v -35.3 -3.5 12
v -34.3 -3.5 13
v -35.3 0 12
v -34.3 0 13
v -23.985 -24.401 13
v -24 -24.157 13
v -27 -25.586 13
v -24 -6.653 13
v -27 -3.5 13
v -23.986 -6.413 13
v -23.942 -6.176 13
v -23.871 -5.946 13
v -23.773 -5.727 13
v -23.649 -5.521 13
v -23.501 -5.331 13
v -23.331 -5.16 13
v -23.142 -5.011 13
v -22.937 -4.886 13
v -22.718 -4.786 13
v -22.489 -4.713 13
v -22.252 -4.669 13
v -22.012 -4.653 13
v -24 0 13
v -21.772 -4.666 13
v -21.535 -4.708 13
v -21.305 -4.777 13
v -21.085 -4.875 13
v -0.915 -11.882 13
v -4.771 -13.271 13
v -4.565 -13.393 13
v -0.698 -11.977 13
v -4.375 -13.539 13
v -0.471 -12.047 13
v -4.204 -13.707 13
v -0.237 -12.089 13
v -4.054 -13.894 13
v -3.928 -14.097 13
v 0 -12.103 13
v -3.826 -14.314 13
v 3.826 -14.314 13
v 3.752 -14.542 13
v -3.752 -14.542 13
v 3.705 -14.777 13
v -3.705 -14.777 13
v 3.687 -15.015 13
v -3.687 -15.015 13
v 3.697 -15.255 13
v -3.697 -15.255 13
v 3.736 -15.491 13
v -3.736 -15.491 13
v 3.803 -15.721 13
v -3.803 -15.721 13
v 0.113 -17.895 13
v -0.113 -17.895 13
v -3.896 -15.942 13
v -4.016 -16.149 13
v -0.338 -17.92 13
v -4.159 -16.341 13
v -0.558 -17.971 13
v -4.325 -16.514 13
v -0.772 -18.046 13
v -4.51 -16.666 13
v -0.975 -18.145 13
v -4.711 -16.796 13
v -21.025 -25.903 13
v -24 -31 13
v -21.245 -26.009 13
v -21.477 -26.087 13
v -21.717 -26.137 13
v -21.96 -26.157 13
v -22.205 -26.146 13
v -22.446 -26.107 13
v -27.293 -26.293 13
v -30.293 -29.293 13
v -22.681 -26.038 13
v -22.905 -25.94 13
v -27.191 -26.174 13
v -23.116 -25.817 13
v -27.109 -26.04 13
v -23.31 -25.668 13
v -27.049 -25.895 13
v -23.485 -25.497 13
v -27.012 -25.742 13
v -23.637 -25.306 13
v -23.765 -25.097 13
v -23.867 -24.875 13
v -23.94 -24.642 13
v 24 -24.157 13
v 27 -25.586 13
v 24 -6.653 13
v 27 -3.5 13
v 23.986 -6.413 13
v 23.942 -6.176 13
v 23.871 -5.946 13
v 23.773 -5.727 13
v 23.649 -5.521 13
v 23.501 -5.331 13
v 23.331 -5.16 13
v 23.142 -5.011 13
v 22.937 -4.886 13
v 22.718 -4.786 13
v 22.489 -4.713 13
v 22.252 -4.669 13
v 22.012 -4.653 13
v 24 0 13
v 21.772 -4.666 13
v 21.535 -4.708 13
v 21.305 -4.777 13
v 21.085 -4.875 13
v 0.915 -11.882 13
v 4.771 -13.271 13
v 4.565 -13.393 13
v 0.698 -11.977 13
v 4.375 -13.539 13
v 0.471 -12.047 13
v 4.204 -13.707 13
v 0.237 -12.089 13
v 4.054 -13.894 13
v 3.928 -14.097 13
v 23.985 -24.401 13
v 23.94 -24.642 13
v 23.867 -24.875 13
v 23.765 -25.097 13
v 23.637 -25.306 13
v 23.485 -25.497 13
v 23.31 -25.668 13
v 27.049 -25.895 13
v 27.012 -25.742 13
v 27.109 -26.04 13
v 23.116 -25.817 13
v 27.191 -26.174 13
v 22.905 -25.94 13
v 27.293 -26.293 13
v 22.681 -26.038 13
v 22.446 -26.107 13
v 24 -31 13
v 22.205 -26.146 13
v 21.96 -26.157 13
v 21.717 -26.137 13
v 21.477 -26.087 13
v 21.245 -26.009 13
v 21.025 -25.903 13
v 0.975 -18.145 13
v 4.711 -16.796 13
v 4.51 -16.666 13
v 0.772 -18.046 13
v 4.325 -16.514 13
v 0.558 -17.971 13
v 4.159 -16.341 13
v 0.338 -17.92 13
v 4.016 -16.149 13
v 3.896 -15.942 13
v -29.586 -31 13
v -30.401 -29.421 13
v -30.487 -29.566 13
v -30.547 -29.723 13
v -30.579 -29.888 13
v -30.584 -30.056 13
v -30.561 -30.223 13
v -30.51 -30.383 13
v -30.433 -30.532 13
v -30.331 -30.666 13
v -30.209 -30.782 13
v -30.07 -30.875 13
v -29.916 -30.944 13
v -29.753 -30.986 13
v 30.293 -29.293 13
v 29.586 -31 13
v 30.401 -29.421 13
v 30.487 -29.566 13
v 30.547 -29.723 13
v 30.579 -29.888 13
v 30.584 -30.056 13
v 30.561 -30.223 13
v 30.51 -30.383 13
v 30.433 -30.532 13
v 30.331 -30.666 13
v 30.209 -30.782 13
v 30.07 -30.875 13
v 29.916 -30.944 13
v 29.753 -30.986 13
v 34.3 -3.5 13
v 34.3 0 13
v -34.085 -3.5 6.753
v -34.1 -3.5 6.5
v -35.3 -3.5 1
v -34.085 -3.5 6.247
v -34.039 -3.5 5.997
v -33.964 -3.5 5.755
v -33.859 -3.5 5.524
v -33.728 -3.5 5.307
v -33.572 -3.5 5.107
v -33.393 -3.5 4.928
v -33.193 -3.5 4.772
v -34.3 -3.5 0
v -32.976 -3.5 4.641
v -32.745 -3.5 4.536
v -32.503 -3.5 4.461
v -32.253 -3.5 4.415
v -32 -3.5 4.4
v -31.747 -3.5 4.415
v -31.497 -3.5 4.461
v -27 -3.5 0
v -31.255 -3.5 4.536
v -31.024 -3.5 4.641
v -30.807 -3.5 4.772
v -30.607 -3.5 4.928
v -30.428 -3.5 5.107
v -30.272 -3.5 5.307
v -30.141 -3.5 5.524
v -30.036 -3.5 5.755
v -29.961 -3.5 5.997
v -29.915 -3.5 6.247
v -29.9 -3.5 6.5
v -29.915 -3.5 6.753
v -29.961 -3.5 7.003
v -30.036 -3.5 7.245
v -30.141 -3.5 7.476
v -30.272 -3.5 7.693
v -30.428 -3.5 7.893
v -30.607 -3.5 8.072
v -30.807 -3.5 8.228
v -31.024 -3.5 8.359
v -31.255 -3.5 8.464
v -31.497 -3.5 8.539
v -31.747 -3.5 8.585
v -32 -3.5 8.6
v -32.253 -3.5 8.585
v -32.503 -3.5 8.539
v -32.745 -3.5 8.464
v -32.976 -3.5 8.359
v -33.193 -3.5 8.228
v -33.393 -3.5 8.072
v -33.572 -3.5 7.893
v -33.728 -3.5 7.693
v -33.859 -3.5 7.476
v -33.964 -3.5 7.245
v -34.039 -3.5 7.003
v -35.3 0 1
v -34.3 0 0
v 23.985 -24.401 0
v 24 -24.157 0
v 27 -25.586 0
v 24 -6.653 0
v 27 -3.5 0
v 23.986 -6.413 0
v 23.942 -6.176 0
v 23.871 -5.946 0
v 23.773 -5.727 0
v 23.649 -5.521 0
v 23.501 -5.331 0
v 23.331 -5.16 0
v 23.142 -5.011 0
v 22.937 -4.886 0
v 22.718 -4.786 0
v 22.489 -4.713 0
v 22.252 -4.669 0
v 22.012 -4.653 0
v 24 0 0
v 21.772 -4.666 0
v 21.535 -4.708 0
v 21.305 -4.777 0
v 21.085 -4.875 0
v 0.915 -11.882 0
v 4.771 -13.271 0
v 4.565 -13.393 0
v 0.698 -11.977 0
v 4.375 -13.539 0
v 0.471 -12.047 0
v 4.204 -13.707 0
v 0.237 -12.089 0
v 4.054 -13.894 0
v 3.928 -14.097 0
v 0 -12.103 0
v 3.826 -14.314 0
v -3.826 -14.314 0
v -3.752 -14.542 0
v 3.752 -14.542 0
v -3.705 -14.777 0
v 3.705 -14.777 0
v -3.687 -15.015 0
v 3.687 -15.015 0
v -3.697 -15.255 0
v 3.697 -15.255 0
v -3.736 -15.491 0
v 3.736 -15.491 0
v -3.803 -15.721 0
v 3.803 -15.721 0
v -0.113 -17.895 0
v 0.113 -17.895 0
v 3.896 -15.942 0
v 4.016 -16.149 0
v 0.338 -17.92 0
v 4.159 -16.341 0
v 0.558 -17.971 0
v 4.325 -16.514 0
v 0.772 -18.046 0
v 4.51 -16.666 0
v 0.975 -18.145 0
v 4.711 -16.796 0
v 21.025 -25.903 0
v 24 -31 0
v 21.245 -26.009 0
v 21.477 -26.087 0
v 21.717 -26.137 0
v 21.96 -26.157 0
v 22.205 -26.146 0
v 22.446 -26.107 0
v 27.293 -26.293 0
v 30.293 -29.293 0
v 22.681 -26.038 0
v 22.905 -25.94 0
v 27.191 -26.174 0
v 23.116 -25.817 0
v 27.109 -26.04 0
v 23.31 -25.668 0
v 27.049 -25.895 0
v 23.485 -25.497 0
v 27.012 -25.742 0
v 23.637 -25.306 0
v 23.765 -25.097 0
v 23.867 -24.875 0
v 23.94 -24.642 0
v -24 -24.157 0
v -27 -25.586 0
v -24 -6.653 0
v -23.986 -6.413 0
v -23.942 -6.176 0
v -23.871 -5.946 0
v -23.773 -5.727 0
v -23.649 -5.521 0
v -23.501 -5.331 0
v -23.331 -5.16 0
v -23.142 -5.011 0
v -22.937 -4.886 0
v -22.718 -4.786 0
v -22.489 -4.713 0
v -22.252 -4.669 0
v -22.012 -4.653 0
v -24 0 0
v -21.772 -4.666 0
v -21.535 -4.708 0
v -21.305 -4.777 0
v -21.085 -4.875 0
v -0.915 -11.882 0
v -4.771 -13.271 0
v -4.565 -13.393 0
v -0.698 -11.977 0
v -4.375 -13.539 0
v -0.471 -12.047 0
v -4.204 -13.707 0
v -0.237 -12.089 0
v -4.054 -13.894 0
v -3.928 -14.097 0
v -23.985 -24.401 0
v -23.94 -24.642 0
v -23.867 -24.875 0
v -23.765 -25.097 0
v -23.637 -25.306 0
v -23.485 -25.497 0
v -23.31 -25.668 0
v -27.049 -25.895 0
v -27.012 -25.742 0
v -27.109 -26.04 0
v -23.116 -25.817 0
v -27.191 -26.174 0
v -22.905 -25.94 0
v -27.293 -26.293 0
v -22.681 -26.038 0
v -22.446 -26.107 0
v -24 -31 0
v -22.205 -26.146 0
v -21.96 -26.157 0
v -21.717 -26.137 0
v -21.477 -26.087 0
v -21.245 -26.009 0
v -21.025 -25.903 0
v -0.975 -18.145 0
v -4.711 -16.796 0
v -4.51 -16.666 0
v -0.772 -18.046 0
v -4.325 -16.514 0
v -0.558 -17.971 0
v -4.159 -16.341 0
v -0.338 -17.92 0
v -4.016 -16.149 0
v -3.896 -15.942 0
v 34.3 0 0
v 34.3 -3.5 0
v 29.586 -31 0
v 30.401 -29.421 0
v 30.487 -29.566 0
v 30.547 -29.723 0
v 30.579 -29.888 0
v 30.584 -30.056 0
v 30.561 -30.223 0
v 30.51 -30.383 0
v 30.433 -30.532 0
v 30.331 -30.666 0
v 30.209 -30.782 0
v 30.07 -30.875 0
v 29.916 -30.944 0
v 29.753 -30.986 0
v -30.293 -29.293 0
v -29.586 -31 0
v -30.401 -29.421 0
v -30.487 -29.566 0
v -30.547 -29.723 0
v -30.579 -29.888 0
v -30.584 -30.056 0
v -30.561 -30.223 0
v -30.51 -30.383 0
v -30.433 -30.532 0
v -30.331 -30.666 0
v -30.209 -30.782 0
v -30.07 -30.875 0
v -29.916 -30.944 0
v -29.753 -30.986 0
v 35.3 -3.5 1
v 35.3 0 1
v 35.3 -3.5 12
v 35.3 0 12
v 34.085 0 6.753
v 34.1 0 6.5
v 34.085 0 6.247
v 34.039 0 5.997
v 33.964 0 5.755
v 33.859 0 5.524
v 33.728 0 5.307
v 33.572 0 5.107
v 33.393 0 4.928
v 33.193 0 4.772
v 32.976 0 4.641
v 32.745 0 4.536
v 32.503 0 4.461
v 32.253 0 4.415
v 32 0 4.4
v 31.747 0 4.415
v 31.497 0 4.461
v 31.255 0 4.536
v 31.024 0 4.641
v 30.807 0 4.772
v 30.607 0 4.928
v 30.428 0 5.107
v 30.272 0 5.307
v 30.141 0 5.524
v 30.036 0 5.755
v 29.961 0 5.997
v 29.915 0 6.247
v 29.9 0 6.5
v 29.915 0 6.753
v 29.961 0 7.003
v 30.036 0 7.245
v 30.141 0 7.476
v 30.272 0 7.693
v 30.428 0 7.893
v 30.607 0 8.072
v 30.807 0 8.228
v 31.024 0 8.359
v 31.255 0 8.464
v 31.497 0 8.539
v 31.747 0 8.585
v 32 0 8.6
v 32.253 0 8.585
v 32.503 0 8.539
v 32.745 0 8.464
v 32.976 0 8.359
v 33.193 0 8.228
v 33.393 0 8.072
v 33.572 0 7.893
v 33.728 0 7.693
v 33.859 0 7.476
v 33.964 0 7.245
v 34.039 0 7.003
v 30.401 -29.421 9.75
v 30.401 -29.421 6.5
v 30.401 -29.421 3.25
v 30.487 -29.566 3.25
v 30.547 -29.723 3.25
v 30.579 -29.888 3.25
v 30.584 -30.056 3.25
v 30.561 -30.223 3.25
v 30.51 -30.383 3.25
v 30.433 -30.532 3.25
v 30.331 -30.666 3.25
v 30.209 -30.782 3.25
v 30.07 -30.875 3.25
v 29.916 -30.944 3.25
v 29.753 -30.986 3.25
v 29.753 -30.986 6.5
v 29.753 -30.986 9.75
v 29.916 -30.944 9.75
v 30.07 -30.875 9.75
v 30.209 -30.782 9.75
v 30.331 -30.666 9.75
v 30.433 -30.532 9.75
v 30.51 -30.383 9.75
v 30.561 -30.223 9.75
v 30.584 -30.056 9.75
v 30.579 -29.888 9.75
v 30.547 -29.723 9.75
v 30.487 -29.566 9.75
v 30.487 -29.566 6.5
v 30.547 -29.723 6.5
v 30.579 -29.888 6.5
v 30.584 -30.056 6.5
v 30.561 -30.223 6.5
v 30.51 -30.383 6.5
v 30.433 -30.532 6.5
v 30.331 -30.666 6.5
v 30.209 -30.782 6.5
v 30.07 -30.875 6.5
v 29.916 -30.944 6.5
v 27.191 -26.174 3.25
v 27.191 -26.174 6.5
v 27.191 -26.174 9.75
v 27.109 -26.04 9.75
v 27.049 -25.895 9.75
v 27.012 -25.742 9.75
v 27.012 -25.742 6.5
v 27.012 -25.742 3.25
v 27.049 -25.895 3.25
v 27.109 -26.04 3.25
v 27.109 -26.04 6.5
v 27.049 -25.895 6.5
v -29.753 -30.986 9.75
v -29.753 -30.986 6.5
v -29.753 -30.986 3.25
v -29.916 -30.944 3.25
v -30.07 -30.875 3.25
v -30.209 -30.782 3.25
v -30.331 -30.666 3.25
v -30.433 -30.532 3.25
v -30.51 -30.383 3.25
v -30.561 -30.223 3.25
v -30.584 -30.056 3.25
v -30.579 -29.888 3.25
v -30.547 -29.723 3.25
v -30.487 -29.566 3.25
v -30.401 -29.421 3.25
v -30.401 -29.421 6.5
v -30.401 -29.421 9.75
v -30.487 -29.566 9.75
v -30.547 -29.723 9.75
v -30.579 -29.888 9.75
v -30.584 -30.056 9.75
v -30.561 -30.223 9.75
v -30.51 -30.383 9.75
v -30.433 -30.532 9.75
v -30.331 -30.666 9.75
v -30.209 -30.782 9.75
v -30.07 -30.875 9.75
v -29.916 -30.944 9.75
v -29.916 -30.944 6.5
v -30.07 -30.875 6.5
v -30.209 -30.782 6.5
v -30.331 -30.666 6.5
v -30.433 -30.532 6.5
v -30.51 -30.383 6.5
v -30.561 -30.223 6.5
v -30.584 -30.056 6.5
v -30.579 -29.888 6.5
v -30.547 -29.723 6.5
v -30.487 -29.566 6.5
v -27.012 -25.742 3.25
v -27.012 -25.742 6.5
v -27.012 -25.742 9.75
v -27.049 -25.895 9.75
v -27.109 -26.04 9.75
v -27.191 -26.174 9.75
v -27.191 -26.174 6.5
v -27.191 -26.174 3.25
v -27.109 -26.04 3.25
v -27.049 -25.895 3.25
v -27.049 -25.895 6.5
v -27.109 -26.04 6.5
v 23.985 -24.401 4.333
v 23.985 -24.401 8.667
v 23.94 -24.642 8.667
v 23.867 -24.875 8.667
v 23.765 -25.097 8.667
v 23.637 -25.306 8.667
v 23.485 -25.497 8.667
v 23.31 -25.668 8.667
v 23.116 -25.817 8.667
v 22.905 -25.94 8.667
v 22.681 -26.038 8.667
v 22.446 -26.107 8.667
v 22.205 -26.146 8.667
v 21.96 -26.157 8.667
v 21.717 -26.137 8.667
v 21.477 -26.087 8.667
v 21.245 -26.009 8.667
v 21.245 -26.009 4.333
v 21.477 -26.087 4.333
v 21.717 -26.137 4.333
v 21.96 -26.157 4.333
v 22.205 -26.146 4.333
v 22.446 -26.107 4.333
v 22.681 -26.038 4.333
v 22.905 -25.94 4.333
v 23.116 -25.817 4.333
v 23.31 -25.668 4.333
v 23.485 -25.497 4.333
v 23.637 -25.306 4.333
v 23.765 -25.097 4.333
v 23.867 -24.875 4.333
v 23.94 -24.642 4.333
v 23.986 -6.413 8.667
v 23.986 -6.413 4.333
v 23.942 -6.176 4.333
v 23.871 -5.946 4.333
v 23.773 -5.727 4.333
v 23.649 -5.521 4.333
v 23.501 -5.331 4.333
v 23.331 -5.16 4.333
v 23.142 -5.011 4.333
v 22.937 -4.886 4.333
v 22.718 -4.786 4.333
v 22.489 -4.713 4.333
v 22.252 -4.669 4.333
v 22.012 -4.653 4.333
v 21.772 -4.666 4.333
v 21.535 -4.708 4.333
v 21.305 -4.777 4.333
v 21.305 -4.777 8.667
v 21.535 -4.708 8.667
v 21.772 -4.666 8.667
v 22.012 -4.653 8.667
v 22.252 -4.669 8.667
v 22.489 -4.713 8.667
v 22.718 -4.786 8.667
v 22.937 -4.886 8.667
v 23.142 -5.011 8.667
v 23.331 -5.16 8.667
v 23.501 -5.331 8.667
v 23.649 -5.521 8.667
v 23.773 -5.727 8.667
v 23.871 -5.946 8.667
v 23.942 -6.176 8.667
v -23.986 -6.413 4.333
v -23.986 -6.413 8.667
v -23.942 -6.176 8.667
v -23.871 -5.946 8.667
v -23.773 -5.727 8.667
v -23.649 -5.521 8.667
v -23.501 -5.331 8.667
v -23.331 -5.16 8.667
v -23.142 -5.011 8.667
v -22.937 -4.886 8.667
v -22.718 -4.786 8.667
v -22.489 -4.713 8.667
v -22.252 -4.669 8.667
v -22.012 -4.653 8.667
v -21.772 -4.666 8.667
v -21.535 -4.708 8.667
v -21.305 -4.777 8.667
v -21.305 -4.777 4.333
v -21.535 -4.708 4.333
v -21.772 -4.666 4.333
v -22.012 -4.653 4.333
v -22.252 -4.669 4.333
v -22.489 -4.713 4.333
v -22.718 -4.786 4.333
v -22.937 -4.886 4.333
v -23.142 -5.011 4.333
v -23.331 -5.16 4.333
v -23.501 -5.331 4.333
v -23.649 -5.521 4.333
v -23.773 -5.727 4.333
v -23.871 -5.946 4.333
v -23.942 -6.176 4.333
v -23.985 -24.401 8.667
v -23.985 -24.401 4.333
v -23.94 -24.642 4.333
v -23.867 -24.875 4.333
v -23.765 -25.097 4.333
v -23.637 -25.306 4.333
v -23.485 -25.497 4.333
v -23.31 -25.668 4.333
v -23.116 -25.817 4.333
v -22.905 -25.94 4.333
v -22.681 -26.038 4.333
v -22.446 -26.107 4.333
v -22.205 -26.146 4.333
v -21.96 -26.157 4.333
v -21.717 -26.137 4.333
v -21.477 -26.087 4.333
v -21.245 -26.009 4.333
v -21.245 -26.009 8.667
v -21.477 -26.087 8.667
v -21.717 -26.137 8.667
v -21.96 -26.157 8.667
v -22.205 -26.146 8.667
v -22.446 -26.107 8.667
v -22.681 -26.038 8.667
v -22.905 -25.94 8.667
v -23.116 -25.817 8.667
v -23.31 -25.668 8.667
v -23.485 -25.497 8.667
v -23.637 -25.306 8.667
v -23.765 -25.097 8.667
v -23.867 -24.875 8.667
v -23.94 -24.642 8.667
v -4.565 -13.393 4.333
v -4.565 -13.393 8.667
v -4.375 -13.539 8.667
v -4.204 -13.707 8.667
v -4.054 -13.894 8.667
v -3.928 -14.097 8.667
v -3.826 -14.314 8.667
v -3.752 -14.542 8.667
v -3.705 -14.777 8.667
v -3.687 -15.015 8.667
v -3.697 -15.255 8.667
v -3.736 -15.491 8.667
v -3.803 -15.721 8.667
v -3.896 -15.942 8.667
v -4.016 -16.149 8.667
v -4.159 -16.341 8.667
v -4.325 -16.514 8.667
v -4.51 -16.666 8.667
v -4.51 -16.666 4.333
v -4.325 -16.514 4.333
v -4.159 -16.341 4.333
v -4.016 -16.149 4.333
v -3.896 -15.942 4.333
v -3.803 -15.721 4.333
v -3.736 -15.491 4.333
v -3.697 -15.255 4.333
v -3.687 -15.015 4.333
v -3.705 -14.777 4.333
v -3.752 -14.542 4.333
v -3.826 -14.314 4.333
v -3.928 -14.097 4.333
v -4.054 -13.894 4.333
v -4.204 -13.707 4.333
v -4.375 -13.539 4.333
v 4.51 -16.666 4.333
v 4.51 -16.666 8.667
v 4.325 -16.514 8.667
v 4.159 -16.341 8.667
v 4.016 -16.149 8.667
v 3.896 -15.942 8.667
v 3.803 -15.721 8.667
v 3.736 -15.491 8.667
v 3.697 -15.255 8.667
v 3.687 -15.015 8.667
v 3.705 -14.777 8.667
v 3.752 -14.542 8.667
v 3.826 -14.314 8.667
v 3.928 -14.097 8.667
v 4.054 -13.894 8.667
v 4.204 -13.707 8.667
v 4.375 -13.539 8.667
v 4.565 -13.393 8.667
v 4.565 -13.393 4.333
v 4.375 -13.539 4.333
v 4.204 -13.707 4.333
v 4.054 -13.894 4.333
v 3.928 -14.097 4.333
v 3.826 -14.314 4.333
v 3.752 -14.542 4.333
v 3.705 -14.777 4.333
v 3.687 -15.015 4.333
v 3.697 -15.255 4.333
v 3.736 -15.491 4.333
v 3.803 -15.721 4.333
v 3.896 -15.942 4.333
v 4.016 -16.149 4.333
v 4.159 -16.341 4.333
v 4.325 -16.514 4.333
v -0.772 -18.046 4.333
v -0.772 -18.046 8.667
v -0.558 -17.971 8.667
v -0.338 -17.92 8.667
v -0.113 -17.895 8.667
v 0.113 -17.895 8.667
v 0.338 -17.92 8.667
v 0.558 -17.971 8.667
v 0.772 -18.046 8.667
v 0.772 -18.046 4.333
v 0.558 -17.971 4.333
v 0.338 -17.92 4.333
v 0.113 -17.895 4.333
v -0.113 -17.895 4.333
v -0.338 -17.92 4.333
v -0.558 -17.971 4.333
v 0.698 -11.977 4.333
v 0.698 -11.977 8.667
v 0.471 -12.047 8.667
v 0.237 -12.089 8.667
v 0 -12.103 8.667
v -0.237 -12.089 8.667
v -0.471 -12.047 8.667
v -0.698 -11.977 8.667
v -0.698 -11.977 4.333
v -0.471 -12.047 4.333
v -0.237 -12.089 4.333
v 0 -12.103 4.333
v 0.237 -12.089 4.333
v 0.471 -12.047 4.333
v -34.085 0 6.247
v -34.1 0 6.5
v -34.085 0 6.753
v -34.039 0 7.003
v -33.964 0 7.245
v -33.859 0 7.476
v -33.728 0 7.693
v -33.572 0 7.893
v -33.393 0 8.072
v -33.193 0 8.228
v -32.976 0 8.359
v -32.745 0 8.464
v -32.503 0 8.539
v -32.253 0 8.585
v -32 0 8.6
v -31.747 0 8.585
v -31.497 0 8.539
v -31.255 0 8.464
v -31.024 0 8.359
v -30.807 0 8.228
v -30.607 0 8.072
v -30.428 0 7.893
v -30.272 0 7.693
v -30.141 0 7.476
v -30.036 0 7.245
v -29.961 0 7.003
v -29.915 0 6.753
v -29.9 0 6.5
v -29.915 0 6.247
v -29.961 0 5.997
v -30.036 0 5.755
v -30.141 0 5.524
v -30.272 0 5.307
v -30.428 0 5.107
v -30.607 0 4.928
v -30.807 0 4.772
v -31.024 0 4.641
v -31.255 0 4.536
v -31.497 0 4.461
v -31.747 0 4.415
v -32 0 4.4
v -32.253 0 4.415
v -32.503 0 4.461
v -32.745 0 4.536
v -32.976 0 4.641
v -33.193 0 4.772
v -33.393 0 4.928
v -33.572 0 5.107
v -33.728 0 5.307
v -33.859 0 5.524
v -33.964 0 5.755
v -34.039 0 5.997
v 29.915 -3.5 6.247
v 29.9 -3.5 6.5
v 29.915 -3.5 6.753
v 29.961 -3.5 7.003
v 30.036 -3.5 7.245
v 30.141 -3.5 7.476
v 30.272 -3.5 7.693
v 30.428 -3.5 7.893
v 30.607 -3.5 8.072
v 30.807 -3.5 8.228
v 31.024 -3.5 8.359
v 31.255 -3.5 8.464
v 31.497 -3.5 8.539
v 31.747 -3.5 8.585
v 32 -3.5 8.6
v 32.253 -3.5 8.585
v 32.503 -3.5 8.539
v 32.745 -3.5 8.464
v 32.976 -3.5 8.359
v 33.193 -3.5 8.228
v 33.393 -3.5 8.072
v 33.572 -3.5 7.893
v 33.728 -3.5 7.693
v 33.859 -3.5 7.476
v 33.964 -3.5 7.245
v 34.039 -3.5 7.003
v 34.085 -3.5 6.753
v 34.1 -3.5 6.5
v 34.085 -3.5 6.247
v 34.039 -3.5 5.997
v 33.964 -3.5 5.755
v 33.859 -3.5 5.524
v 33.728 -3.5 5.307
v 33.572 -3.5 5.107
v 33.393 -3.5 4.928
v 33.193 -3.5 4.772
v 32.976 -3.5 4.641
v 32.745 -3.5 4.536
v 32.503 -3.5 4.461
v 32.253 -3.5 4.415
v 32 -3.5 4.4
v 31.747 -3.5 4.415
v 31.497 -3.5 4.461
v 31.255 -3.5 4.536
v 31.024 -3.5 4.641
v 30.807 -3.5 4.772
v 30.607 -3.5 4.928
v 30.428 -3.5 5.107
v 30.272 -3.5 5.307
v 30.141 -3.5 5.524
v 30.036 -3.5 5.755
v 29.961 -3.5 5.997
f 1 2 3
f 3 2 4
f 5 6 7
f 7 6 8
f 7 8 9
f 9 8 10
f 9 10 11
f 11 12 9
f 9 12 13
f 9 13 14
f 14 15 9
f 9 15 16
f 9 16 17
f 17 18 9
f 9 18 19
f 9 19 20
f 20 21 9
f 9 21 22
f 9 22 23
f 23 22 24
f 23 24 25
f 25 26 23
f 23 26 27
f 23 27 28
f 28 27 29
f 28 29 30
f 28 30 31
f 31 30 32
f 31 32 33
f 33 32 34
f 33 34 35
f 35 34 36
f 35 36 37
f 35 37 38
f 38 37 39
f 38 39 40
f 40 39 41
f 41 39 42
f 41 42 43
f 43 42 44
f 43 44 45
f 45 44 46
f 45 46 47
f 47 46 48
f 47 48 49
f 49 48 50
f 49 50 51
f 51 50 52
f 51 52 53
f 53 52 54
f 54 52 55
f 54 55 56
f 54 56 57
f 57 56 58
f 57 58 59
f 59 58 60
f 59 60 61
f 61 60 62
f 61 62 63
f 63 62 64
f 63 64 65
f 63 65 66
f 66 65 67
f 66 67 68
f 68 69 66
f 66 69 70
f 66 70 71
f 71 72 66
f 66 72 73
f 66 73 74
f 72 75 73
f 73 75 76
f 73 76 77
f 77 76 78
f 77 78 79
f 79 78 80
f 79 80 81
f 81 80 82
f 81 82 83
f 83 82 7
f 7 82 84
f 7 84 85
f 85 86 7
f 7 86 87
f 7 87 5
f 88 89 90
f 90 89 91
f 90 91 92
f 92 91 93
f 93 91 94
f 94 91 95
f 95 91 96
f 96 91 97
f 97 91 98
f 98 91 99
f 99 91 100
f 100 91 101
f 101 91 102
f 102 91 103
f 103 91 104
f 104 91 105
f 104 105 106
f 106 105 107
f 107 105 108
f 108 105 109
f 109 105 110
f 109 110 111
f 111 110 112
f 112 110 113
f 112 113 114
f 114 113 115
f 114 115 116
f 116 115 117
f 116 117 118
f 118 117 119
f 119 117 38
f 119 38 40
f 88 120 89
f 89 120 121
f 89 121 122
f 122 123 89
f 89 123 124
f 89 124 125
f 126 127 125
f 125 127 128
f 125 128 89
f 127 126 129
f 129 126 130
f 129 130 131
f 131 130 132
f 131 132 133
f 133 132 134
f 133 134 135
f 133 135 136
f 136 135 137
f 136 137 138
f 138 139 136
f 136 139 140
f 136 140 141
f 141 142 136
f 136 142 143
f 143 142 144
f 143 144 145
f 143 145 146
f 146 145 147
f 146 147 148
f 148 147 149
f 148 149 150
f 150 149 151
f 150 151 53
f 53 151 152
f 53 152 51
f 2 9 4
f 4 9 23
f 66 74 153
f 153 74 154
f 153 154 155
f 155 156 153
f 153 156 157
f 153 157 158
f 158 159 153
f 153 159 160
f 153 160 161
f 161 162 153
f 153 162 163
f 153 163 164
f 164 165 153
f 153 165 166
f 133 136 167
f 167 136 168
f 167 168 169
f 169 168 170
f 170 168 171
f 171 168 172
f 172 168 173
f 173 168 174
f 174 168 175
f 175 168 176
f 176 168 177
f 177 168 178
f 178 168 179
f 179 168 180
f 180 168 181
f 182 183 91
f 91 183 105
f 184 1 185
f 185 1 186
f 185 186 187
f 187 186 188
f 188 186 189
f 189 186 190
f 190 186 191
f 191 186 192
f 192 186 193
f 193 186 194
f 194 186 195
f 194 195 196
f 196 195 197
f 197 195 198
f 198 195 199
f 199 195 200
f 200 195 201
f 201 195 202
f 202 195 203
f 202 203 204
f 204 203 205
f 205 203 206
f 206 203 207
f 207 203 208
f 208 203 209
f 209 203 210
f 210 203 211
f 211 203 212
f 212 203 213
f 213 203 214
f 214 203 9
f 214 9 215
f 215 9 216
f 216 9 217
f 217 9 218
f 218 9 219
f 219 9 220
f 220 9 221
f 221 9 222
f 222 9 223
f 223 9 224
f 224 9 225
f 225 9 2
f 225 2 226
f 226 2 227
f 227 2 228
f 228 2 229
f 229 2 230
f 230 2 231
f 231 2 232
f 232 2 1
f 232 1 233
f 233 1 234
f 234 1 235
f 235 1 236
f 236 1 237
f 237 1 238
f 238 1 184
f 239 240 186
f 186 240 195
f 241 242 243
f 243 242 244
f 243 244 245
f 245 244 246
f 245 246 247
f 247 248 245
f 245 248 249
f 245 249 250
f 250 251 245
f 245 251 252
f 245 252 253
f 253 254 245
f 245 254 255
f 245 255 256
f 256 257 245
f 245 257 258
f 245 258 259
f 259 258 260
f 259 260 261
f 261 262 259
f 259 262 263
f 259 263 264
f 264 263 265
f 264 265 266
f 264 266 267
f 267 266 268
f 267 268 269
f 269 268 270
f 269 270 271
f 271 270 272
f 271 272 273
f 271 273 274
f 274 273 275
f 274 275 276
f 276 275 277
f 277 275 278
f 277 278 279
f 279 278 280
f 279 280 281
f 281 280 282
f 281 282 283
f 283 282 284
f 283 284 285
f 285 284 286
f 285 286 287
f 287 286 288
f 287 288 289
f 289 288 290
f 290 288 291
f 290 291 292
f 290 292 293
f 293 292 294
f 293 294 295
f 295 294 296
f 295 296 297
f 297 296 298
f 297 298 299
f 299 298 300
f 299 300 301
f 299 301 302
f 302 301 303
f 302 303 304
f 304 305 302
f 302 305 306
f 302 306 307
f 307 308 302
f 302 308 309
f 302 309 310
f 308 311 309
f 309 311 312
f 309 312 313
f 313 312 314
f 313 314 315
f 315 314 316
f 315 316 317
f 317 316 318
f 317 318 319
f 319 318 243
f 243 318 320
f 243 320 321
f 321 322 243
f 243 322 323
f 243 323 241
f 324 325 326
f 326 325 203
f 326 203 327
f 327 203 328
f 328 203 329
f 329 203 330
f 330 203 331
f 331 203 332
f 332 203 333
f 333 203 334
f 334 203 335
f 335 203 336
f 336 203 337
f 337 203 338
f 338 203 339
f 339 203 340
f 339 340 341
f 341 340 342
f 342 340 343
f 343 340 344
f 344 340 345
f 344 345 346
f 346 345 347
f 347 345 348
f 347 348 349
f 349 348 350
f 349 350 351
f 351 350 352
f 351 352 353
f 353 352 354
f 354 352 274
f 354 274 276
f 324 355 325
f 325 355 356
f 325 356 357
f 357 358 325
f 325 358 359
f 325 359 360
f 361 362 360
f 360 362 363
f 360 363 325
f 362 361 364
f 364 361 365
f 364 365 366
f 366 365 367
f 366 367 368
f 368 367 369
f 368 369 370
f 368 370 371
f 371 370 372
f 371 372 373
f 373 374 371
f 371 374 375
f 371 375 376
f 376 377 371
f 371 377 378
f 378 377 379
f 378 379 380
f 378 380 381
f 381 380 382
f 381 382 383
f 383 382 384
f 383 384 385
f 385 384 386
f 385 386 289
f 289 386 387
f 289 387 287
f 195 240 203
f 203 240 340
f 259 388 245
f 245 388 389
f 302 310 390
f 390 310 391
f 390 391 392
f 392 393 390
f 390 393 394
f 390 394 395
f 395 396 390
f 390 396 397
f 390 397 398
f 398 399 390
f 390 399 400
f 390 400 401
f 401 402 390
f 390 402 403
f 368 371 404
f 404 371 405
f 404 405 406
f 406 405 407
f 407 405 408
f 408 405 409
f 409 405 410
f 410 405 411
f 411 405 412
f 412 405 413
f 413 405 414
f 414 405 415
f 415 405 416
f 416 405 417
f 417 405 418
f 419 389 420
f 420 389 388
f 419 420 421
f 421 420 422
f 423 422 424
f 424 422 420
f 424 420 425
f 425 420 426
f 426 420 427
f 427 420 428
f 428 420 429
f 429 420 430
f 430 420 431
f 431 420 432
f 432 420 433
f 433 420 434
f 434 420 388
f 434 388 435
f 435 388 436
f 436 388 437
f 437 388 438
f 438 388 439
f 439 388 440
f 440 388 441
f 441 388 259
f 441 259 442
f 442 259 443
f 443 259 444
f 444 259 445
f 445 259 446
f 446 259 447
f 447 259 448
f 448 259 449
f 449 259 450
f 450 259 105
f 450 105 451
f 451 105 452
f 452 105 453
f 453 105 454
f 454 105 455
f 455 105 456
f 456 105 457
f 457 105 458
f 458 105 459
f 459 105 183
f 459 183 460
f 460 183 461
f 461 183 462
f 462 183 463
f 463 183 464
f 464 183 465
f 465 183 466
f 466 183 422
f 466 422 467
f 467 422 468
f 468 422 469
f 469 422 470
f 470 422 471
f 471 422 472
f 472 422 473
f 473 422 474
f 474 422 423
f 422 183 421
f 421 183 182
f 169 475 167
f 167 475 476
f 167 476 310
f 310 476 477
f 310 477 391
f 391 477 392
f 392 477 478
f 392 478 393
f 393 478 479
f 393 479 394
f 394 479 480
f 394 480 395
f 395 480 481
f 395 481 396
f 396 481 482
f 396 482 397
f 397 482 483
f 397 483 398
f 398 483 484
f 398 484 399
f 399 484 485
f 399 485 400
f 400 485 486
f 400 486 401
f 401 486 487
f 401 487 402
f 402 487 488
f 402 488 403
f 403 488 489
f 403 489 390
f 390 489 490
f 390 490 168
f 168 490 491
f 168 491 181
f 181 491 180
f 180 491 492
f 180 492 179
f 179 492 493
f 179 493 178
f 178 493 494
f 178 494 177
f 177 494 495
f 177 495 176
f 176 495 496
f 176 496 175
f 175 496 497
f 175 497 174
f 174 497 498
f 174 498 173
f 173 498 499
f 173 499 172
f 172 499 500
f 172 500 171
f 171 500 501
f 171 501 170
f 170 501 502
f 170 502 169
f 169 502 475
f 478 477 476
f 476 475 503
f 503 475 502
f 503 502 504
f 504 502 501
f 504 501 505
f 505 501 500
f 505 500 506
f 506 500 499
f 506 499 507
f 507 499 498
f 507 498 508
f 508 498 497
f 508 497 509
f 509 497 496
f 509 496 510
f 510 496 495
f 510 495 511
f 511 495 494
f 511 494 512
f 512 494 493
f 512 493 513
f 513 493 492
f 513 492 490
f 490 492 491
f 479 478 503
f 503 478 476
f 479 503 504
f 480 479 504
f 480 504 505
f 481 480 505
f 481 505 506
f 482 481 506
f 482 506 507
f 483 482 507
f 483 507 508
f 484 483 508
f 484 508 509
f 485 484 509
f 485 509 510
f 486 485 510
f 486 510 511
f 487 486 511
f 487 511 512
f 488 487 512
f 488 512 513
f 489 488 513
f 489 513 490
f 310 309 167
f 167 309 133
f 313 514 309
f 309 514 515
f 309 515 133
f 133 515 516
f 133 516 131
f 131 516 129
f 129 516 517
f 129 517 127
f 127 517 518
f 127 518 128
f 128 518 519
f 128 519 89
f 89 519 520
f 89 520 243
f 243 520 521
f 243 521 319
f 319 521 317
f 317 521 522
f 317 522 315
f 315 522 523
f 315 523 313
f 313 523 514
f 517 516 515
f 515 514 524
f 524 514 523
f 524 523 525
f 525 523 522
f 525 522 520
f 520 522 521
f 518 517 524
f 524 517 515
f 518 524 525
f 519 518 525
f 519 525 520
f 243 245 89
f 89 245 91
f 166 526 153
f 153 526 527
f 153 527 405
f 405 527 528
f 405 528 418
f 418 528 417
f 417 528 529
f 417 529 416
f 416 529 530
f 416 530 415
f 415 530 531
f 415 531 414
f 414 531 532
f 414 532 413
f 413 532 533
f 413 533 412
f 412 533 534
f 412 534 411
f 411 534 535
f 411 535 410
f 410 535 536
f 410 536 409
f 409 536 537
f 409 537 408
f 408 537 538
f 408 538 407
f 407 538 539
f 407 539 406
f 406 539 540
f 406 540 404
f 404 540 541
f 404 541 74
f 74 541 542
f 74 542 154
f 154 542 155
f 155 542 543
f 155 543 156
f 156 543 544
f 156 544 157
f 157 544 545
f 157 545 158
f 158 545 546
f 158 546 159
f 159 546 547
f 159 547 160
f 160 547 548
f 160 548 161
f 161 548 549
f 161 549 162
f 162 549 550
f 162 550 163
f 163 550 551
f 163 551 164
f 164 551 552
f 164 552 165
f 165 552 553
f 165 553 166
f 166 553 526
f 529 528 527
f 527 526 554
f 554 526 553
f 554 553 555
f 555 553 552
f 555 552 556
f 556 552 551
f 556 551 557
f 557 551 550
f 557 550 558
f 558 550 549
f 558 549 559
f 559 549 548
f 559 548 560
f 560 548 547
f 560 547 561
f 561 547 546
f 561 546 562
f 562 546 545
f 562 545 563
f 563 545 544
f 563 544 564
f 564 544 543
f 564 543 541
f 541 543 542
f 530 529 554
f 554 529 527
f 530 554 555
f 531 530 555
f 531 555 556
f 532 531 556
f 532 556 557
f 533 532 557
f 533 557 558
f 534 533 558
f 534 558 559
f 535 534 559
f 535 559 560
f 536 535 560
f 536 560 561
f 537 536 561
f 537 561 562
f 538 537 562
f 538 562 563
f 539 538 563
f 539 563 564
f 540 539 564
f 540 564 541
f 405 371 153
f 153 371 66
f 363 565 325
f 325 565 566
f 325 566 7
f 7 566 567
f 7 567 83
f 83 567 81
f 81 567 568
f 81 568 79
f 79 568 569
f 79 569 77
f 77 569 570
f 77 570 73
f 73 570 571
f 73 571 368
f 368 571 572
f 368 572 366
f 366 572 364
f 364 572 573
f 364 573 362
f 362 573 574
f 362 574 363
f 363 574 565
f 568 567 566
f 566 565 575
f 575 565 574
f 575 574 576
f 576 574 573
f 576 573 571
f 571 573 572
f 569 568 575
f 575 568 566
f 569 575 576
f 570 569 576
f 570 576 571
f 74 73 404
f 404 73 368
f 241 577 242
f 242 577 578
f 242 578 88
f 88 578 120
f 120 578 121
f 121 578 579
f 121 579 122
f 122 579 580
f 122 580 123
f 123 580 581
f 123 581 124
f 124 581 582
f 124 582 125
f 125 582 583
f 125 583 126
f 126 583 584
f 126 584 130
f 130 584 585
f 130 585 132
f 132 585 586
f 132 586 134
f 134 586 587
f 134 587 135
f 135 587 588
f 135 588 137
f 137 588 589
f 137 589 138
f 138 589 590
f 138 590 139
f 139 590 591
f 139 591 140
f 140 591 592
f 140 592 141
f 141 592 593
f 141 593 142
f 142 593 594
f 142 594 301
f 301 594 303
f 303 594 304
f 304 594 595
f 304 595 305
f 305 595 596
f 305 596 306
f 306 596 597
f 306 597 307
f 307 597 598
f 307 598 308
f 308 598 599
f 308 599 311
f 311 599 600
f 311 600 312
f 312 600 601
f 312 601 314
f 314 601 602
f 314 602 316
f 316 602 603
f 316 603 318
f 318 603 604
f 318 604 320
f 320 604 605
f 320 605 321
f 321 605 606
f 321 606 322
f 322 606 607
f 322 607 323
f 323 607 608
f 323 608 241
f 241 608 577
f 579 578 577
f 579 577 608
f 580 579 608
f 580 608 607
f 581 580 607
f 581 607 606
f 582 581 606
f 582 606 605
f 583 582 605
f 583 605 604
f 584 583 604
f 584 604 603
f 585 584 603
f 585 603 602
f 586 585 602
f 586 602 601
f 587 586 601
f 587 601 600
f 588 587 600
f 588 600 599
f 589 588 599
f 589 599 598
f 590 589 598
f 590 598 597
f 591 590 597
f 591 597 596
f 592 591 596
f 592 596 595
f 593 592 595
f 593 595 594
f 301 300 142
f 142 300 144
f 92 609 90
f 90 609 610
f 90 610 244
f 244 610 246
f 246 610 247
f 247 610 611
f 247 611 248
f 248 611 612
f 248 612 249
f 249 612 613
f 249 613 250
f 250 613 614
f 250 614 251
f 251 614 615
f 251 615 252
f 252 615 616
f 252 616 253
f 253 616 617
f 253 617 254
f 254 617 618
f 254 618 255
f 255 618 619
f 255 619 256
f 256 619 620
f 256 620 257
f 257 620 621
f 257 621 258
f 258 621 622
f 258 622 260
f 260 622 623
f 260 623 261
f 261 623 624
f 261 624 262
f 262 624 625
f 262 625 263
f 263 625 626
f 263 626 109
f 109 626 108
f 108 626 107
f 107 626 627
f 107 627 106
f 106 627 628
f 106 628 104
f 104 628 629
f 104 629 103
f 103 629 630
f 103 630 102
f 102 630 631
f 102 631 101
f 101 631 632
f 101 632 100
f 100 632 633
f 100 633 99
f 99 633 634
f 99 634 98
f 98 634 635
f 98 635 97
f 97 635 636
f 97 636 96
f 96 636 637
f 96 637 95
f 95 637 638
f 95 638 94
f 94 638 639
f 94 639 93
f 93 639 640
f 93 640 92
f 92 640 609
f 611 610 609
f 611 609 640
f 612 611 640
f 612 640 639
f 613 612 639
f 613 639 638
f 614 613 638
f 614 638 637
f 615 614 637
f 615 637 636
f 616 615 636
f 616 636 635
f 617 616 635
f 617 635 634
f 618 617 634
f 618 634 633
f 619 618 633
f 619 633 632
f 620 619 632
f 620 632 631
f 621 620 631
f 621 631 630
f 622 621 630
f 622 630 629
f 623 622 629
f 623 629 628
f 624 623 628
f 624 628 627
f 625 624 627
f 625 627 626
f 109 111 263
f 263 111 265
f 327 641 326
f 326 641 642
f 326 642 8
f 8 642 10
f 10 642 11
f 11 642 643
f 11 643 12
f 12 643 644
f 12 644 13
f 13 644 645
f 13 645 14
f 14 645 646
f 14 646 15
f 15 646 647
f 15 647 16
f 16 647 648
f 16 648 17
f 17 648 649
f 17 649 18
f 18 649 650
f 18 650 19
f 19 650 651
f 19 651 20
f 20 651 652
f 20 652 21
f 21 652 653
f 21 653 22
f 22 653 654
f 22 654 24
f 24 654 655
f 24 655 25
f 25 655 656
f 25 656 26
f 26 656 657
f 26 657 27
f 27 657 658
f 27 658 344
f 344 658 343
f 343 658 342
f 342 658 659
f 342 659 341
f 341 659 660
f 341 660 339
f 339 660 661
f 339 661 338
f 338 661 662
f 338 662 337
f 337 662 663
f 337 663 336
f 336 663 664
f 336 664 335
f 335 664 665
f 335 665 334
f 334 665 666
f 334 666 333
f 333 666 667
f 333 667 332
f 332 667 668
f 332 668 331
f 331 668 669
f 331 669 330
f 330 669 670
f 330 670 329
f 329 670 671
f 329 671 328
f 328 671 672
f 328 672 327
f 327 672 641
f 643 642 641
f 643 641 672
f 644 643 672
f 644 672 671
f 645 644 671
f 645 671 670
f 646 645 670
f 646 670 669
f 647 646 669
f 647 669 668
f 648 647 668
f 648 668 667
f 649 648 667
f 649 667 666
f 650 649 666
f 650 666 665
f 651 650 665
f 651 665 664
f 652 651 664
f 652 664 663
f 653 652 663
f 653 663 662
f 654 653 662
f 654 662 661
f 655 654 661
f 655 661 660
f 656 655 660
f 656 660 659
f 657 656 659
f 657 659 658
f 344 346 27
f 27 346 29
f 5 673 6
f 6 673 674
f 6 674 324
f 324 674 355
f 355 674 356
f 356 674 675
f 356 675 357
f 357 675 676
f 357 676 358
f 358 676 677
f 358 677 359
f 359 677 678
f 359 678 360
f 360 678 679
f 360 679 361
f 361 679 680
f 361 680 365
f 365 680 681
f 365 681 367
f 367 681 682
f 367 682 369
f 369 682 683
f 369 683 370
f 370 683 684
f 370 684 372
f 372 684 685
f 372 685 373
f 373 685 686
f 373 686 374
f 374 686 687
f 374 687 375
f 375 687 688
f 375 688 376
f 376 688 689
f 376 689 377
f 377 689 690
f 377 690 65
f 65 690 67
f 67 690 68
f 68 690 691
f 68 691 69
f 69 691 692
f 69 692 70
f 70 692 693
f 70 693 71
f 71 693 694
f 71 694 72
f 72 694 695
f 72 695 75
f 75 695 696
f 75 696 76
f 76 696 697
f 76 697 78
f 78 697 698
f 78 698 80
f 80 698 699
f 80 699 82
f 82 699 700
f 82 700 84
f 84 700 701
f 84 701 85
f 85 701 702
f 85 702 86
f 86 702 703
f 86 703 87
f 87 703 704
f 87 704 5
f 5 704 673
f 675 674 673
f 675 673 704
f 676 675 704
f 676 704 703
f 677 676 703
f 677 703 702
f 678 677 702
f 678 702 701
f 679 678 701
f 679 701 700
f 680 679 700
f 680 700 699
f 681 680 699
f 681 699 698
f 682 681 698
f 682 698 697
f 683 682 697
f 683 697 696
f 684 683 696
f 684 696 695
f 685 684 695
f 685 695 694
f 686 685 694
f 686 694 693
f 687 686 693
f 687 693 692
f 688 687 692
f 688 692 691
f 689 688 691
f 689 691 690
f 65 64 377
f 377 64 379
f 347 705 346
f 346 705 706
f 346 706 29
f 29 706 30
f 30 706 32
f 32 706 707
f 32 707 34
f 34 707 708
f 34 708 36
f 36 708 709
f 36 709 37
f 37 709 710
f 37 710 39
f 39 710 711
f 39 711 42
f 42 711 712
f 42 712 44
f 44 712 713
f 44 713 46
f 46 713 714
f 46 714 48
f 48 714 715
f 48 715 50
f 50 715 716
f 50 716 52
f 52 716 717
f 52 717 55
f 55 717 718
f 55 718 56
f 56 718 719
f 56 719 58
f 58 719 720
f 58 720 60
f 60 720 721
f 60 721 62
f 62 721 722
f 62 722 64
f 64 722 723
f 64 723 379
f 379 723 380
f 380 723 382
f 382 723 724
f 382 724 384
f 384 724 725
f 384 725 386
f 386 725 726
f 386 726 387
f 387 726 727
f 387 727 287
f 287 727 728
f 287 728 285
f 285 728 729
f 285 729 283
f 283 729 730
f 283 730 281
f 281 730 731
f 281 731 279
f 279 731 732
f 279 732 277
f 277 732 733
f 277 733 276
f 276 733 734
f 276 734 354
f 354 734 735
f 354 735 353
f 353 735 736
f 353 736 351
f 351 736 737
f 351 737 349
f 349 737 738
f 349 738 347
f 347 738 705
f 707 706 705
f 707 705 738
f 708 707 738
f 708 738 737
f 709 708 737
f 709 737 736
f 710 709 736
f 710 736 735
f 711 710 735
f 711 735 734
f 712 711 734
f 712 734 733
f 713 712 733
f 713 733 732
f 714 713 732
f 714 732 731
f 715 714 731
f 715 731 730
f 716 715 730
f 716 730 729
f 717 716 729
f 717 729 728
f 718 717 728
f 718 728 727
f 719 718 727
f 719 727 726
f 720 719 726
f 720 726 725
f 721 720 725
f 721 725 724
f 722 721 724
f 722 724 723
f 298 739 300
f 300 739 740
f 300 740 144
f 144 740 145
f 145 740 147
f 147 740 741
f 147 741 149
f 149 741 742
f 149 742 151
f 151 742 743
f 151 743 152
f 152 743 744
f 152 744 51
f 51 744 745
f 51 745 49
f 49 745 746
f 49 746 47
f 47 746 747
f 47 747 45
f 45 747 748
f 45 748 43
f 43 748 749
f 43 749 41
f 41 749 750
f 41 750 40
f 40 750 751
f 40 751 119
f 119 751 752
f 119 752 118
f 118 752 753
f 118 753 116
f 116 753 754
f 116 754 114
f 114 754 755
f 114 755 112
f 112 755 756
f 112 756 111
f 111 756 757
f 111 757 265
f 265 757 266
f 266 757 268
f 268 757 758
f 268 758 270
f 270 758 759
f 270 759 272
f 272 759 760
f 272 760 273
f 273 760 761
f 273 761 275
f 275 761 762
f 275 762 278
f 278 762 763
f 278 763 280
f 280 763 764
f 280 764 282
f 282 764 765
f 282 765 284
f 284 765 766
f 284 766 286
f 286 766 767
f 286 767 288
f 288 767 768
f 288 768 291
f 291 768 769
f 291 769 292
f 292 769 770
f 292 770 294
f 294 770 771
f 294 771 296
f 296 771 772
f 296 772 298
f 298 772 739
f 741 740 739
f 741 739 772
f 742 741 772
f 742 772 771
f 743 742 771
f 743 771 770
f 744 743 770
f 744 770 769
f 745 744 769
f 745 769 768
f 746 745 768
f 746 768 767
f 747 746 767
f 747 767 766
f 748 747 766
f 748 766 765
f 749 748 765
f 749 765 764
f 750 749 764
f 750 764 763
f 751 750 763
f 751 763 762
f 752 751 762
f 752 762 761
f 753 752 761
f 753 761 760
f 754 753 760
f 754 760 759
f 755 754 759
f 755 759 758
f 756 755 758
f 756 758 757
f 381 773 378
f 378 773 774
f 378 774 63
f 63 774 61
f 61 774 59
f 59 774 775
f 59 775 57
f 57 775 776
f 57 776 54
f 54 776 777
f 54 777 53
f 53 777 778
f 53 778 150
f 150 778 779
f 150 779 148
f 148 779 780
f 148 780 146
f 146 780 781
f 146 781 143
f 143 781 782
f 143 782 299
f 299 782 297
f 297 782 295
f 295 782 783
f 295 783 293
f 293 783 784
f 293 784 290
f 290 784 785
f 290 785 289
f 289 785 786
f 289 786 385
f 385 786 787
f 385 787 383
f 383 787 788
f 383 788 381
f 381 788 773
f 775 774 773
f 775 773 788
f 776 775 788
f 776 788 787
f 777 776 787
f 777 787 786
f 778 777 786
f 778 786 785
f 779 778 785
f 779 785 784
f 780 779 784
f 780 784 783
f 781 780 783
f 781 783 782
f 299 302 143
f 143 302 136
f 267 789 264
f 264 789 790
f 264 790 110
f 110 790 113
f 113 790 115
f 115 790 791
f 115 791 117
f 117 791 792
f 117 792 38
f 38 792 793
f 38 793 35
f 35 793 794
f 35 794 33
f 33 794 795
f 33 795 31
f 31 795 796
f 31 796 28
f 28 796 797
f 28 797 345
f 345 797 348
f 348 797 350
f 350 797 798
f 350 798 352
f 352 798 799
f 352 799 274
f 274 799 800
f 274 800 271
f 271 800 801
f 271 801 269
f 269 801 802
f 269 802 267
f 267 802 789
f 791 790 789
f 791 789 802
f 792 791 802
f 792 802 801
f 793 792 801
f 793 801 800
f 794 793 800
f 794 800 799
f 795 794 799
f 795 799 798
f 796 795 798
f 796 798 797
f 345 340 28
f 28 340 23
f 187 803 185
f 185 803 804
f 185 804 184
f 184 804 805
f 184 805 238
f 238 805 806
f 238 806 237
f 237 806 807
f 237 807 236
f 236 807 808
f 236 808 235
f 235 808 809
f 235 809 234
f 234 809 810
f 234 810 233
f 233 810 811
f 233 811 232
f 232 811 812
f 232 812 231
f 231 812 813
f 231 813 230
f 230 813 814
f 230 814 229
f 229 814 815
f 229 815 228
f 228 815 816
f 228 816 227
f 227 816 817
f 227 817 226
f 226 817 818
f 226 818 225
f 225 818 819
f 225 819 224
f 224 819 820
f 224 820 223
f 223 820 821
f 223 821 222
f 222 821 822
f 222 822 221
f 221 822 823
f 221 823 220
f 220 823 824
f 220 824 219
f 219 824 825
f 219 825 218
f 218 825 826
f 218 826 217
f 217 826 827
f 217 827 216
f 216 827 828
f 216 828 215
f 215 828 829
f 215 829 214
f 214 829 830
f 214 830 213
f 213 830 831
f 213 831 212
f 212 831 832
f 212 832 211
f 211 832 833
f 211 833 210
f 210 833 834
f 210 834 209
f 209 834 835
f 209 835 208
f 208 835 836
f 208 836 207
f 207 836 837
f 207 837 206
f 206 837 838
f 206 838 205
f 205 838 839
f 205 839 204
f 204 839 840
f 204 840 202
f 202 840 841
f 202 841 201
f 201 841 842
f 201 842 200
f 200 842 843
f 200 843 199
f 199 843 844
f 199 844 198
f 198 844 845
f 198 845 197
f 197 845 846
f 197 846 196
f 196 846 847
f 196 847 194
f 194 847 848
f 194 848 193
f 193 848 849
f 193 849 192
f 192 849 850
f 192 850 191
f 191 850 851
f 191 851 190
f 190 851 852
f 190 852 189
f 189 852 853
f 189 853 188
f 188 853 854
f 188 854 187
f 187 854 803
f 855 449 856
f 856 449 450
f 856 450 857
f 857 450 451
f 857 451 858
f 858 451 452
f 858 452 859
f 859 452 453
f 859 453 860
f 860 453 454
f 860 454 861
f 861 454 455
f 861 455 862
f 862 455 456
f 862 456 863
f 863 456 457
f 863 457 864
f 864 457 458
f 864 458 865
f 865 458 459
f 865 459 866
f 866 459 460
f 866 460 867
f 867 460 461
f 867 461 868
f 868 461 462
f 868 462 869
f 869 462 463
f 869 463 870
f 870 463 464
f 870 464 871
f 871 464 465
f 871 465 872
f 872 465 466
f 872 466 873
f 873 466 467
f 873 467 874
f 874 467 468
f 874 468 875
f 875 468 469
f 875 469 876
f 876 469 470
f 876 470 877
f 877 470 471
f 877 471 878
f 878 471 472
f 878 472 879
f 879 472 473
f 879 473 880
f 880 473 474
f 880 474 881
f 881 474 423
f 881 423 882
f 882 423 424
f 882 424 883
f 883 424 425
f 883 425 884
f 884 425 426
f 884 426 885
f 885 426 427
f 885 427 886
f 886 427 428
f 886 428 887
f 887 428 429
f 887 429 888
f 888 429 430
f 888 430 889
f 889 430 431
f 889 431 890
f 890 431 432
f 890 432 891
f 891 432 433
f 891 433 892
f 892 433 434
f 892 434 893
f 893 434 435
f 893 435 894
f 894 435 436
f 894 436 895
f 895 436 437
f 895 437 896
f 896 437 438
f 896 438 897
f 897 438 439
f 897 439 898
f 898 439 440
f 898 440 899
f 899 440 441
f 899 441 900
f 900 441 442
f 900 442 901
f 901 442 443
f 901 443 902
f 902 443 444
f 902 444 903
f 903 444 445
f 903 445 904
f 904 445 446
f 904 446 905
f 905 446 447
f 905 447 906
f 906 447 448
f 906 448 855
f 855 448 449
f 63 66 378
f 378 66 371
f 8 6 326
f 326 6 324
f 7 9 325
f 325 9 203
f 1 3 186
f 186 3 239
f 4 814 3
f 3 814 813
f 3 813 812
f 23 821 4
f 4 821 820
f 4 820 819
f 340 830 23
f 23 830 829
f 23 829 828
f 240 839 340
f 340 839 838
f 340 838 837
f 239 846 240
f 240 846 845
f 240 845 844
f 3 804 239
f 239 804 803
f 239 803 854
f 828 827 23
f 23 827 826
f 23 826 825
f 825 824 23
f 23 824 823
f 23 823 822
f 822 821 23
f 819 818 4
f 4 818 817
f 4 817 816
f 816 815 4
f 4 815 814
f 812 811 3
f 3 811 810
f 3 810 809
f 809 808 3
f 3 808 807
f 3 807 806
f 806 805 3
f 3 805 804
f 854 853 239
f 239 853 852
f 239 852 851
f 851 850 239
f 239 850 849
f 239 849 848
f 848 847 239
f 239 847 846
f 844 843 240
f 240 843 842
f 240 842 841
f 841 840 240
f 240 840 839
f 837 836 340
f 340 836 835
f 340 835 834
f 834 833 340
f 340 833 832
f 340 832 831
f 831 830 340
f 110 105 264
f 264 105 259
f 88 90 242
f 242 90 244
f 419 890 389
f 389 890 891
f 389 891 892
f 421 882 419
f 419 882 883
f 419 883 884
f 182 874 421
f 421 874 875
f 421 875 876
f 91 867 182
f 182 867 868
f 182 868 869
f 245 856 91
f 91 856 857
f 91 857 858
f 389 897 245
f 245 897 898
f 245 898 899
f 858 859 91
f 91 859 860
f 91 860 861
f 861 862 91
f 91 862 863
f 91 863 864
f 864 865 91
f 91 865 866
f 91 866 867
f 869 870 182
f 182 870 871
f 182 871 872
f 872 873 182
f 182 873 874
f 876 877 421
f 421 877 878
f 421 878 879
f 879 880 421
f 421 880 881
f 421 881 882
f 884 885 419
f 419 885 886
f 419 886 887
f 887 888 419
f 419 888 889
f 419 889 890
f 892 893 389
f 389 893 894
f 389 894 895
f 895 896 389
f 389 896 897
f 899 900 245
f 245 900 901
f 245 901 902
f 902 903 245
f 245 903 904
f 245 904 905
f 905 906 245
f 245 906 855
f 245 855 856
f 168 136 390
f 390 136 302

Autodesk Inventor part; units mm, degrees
ref_plane "YZ Plane" through (0, 0, 0) normal (1, 0, 0) x (0, 1, 0)
ref_plane "XZ Plane" through (0, 0, 0) normal (0, 1, 0) x (-1, 0, 0)
ref_plane "XY Plane" through (0, 0, 0) normal (0, 0, 1) x (1, 0, 0)
sketch "Sketch1" plane through (0, 0, 0) normal (0, 0, 1) x (1, 0, 0)
  line L0 (-35.3, 0) -> (-27, 0)
  line L1 (-27, 0) -> (-27, -3.5)
  line L2 (-27, -3.5) -> (-35.3, -3.5)
  line L3 (-35.3, -3.5) -> (-35.3, 0)
  line L4 (-27, 0) -> (-24, 0)
  line L5 (-24, 0) -> (-24, -31)
  line L6 (-24, -31) -> (-27, -31)
  line L7 (-27, -31) -> (-27, 0)
  line L8 (-27, -31) -> (-32, -31)
  line L9 (-32, -31) -> (-27, -26)
  line L10 (-24, -31) -> (36.4267, -31) construction
  line L11 (0, 0) -> (0, -31)
  line L12 (-24, 0) -> (31.066, 0) construction
  line L13 (-24, -31) -> (0, -17.6011)
  line L14 (-24, -27.5641) -> (-1.4552, -14.9777)
  line L15 (-24, 0) -> (0, -12.3526)
  line L16 (-1.4552, -14.9777) -> (-24, -3.374)
  line L17 (35.3, 0) -> (27, 0)
  line L18 (27, 0) -> (27, -3.5)
  line L19 (27, -3.5) -> (35.3, -3.5)
  line L20 (35.3, -3.5) -> (35.3, 0)
  line L21 (27, 0) -> (24, 0)
  line L22 (24, 0) -> (24, -31)
  line L23 (24, -31) -> (27, -31)
  line L24 (27, -31) -> (27, 0)
  line L25 (27, -31) -> (32, -31)
  line L26 (32, -31) -> (27, -26)
  line L27 (24, -31) -> (0, -17.6011)
  line L28 (24, -27.5641) -> (1.4552, -14.9777)
  line L29 (24, 0) -> (0, -12.3526)
  line L30 (1.4552, -14.9777) -> (24, -3.374)
  dimension "d0" = 8.3
  dimension "d1" = 3.5
  dimension "d2" = 27
  dimension "d3" = 3
  dimension "d4" = 31
  dimension "d5" = 5
  dimension "d7" = 45
  dimension "d13" = 0
  dimension "d17" = 3
  dimension "d18" = 3
extrude "Extrusion1" add sketch "Sketch1" along normal blind 13 contours L0 L1 L2 L3 | L4 L5 L6 L7 L1 | L15 L11 L13 L5 L14 L16 | L7 L8 L9 | L29 L22 L30 L28 L27 L11 | L21 L18 L24 L23 L22 | L17 L20 L19 L18 | L24 L26 L25
sketch "Sketch2" plane through (-35.3, 0, 0) normal (0, 1, 0) x (1, 0, 0)
  line L0 (0, 0) -> (11.3, 0) projected
  line L1 (0, 0) -> (0, -13) projected
  line L2 (11.3, -13) -> (0, -13) projected
  line L3 (11.3, 0) -> (11.3, -13) projected
  line L4 (59.3, 0) -> (70.6, 0) projected
  line L5 (59.3, 0) -> (59.3, -13) projected
  line L6 (70.6, -13) -> (59.3, -13) projected
  line L7 (70.6, 0) -> (70.6, -13) projected
  point P0 (35.3, 0)
  point P1 (3.3, -6.5)
  point P2 (67.3, -6.5)
  dimension "d21" = 64
  dimension "d22" = 70.6
  dimension "d23" = 3.3
  dimension "d24" = 6.5
  dimension "d25" = 13
hole "Hole1" at (-32, 0, 6.5) at (32, 0, 6.5) direction (0, -1, 0) diameter 4.2 depth 15 tip angle 118
fillet "Fillet1" radius 2 8 edges at (0, -12.3526, 6.5) (0, -17.6011, 6.5) (1.4552, -14.9777, 6.5) (-1.4552, -14.9777, 6.5) (-24, -27.5641, 6.5) (-24, -3.374, 6.5) (24, -3.374, 6.5) (24, -27.5641, 6.5)
fillet "Fillet1" radius 1 4 edges at (-27, -26, 6.5) (-32, -31, 6.5) (27, -26, 6.5) (32, -31, 6.5)
chamfer "Chamfer1" distance 1 angle 45 4 edges at (35.3, -1.75, 13) (35.3, -1.75, 0) (-35.3, -1.75, 0) (-35.3, -1.75, 13)
equation "\"d23\" = -0.5 * d21 + 0.5 * d22"
equation "\"d24\" = 0.5 * d25"
equation "\"d16\" = d12"
equation "\"d12\" = 3"
properties part number "3DP_PLA_Turbine_stand"
